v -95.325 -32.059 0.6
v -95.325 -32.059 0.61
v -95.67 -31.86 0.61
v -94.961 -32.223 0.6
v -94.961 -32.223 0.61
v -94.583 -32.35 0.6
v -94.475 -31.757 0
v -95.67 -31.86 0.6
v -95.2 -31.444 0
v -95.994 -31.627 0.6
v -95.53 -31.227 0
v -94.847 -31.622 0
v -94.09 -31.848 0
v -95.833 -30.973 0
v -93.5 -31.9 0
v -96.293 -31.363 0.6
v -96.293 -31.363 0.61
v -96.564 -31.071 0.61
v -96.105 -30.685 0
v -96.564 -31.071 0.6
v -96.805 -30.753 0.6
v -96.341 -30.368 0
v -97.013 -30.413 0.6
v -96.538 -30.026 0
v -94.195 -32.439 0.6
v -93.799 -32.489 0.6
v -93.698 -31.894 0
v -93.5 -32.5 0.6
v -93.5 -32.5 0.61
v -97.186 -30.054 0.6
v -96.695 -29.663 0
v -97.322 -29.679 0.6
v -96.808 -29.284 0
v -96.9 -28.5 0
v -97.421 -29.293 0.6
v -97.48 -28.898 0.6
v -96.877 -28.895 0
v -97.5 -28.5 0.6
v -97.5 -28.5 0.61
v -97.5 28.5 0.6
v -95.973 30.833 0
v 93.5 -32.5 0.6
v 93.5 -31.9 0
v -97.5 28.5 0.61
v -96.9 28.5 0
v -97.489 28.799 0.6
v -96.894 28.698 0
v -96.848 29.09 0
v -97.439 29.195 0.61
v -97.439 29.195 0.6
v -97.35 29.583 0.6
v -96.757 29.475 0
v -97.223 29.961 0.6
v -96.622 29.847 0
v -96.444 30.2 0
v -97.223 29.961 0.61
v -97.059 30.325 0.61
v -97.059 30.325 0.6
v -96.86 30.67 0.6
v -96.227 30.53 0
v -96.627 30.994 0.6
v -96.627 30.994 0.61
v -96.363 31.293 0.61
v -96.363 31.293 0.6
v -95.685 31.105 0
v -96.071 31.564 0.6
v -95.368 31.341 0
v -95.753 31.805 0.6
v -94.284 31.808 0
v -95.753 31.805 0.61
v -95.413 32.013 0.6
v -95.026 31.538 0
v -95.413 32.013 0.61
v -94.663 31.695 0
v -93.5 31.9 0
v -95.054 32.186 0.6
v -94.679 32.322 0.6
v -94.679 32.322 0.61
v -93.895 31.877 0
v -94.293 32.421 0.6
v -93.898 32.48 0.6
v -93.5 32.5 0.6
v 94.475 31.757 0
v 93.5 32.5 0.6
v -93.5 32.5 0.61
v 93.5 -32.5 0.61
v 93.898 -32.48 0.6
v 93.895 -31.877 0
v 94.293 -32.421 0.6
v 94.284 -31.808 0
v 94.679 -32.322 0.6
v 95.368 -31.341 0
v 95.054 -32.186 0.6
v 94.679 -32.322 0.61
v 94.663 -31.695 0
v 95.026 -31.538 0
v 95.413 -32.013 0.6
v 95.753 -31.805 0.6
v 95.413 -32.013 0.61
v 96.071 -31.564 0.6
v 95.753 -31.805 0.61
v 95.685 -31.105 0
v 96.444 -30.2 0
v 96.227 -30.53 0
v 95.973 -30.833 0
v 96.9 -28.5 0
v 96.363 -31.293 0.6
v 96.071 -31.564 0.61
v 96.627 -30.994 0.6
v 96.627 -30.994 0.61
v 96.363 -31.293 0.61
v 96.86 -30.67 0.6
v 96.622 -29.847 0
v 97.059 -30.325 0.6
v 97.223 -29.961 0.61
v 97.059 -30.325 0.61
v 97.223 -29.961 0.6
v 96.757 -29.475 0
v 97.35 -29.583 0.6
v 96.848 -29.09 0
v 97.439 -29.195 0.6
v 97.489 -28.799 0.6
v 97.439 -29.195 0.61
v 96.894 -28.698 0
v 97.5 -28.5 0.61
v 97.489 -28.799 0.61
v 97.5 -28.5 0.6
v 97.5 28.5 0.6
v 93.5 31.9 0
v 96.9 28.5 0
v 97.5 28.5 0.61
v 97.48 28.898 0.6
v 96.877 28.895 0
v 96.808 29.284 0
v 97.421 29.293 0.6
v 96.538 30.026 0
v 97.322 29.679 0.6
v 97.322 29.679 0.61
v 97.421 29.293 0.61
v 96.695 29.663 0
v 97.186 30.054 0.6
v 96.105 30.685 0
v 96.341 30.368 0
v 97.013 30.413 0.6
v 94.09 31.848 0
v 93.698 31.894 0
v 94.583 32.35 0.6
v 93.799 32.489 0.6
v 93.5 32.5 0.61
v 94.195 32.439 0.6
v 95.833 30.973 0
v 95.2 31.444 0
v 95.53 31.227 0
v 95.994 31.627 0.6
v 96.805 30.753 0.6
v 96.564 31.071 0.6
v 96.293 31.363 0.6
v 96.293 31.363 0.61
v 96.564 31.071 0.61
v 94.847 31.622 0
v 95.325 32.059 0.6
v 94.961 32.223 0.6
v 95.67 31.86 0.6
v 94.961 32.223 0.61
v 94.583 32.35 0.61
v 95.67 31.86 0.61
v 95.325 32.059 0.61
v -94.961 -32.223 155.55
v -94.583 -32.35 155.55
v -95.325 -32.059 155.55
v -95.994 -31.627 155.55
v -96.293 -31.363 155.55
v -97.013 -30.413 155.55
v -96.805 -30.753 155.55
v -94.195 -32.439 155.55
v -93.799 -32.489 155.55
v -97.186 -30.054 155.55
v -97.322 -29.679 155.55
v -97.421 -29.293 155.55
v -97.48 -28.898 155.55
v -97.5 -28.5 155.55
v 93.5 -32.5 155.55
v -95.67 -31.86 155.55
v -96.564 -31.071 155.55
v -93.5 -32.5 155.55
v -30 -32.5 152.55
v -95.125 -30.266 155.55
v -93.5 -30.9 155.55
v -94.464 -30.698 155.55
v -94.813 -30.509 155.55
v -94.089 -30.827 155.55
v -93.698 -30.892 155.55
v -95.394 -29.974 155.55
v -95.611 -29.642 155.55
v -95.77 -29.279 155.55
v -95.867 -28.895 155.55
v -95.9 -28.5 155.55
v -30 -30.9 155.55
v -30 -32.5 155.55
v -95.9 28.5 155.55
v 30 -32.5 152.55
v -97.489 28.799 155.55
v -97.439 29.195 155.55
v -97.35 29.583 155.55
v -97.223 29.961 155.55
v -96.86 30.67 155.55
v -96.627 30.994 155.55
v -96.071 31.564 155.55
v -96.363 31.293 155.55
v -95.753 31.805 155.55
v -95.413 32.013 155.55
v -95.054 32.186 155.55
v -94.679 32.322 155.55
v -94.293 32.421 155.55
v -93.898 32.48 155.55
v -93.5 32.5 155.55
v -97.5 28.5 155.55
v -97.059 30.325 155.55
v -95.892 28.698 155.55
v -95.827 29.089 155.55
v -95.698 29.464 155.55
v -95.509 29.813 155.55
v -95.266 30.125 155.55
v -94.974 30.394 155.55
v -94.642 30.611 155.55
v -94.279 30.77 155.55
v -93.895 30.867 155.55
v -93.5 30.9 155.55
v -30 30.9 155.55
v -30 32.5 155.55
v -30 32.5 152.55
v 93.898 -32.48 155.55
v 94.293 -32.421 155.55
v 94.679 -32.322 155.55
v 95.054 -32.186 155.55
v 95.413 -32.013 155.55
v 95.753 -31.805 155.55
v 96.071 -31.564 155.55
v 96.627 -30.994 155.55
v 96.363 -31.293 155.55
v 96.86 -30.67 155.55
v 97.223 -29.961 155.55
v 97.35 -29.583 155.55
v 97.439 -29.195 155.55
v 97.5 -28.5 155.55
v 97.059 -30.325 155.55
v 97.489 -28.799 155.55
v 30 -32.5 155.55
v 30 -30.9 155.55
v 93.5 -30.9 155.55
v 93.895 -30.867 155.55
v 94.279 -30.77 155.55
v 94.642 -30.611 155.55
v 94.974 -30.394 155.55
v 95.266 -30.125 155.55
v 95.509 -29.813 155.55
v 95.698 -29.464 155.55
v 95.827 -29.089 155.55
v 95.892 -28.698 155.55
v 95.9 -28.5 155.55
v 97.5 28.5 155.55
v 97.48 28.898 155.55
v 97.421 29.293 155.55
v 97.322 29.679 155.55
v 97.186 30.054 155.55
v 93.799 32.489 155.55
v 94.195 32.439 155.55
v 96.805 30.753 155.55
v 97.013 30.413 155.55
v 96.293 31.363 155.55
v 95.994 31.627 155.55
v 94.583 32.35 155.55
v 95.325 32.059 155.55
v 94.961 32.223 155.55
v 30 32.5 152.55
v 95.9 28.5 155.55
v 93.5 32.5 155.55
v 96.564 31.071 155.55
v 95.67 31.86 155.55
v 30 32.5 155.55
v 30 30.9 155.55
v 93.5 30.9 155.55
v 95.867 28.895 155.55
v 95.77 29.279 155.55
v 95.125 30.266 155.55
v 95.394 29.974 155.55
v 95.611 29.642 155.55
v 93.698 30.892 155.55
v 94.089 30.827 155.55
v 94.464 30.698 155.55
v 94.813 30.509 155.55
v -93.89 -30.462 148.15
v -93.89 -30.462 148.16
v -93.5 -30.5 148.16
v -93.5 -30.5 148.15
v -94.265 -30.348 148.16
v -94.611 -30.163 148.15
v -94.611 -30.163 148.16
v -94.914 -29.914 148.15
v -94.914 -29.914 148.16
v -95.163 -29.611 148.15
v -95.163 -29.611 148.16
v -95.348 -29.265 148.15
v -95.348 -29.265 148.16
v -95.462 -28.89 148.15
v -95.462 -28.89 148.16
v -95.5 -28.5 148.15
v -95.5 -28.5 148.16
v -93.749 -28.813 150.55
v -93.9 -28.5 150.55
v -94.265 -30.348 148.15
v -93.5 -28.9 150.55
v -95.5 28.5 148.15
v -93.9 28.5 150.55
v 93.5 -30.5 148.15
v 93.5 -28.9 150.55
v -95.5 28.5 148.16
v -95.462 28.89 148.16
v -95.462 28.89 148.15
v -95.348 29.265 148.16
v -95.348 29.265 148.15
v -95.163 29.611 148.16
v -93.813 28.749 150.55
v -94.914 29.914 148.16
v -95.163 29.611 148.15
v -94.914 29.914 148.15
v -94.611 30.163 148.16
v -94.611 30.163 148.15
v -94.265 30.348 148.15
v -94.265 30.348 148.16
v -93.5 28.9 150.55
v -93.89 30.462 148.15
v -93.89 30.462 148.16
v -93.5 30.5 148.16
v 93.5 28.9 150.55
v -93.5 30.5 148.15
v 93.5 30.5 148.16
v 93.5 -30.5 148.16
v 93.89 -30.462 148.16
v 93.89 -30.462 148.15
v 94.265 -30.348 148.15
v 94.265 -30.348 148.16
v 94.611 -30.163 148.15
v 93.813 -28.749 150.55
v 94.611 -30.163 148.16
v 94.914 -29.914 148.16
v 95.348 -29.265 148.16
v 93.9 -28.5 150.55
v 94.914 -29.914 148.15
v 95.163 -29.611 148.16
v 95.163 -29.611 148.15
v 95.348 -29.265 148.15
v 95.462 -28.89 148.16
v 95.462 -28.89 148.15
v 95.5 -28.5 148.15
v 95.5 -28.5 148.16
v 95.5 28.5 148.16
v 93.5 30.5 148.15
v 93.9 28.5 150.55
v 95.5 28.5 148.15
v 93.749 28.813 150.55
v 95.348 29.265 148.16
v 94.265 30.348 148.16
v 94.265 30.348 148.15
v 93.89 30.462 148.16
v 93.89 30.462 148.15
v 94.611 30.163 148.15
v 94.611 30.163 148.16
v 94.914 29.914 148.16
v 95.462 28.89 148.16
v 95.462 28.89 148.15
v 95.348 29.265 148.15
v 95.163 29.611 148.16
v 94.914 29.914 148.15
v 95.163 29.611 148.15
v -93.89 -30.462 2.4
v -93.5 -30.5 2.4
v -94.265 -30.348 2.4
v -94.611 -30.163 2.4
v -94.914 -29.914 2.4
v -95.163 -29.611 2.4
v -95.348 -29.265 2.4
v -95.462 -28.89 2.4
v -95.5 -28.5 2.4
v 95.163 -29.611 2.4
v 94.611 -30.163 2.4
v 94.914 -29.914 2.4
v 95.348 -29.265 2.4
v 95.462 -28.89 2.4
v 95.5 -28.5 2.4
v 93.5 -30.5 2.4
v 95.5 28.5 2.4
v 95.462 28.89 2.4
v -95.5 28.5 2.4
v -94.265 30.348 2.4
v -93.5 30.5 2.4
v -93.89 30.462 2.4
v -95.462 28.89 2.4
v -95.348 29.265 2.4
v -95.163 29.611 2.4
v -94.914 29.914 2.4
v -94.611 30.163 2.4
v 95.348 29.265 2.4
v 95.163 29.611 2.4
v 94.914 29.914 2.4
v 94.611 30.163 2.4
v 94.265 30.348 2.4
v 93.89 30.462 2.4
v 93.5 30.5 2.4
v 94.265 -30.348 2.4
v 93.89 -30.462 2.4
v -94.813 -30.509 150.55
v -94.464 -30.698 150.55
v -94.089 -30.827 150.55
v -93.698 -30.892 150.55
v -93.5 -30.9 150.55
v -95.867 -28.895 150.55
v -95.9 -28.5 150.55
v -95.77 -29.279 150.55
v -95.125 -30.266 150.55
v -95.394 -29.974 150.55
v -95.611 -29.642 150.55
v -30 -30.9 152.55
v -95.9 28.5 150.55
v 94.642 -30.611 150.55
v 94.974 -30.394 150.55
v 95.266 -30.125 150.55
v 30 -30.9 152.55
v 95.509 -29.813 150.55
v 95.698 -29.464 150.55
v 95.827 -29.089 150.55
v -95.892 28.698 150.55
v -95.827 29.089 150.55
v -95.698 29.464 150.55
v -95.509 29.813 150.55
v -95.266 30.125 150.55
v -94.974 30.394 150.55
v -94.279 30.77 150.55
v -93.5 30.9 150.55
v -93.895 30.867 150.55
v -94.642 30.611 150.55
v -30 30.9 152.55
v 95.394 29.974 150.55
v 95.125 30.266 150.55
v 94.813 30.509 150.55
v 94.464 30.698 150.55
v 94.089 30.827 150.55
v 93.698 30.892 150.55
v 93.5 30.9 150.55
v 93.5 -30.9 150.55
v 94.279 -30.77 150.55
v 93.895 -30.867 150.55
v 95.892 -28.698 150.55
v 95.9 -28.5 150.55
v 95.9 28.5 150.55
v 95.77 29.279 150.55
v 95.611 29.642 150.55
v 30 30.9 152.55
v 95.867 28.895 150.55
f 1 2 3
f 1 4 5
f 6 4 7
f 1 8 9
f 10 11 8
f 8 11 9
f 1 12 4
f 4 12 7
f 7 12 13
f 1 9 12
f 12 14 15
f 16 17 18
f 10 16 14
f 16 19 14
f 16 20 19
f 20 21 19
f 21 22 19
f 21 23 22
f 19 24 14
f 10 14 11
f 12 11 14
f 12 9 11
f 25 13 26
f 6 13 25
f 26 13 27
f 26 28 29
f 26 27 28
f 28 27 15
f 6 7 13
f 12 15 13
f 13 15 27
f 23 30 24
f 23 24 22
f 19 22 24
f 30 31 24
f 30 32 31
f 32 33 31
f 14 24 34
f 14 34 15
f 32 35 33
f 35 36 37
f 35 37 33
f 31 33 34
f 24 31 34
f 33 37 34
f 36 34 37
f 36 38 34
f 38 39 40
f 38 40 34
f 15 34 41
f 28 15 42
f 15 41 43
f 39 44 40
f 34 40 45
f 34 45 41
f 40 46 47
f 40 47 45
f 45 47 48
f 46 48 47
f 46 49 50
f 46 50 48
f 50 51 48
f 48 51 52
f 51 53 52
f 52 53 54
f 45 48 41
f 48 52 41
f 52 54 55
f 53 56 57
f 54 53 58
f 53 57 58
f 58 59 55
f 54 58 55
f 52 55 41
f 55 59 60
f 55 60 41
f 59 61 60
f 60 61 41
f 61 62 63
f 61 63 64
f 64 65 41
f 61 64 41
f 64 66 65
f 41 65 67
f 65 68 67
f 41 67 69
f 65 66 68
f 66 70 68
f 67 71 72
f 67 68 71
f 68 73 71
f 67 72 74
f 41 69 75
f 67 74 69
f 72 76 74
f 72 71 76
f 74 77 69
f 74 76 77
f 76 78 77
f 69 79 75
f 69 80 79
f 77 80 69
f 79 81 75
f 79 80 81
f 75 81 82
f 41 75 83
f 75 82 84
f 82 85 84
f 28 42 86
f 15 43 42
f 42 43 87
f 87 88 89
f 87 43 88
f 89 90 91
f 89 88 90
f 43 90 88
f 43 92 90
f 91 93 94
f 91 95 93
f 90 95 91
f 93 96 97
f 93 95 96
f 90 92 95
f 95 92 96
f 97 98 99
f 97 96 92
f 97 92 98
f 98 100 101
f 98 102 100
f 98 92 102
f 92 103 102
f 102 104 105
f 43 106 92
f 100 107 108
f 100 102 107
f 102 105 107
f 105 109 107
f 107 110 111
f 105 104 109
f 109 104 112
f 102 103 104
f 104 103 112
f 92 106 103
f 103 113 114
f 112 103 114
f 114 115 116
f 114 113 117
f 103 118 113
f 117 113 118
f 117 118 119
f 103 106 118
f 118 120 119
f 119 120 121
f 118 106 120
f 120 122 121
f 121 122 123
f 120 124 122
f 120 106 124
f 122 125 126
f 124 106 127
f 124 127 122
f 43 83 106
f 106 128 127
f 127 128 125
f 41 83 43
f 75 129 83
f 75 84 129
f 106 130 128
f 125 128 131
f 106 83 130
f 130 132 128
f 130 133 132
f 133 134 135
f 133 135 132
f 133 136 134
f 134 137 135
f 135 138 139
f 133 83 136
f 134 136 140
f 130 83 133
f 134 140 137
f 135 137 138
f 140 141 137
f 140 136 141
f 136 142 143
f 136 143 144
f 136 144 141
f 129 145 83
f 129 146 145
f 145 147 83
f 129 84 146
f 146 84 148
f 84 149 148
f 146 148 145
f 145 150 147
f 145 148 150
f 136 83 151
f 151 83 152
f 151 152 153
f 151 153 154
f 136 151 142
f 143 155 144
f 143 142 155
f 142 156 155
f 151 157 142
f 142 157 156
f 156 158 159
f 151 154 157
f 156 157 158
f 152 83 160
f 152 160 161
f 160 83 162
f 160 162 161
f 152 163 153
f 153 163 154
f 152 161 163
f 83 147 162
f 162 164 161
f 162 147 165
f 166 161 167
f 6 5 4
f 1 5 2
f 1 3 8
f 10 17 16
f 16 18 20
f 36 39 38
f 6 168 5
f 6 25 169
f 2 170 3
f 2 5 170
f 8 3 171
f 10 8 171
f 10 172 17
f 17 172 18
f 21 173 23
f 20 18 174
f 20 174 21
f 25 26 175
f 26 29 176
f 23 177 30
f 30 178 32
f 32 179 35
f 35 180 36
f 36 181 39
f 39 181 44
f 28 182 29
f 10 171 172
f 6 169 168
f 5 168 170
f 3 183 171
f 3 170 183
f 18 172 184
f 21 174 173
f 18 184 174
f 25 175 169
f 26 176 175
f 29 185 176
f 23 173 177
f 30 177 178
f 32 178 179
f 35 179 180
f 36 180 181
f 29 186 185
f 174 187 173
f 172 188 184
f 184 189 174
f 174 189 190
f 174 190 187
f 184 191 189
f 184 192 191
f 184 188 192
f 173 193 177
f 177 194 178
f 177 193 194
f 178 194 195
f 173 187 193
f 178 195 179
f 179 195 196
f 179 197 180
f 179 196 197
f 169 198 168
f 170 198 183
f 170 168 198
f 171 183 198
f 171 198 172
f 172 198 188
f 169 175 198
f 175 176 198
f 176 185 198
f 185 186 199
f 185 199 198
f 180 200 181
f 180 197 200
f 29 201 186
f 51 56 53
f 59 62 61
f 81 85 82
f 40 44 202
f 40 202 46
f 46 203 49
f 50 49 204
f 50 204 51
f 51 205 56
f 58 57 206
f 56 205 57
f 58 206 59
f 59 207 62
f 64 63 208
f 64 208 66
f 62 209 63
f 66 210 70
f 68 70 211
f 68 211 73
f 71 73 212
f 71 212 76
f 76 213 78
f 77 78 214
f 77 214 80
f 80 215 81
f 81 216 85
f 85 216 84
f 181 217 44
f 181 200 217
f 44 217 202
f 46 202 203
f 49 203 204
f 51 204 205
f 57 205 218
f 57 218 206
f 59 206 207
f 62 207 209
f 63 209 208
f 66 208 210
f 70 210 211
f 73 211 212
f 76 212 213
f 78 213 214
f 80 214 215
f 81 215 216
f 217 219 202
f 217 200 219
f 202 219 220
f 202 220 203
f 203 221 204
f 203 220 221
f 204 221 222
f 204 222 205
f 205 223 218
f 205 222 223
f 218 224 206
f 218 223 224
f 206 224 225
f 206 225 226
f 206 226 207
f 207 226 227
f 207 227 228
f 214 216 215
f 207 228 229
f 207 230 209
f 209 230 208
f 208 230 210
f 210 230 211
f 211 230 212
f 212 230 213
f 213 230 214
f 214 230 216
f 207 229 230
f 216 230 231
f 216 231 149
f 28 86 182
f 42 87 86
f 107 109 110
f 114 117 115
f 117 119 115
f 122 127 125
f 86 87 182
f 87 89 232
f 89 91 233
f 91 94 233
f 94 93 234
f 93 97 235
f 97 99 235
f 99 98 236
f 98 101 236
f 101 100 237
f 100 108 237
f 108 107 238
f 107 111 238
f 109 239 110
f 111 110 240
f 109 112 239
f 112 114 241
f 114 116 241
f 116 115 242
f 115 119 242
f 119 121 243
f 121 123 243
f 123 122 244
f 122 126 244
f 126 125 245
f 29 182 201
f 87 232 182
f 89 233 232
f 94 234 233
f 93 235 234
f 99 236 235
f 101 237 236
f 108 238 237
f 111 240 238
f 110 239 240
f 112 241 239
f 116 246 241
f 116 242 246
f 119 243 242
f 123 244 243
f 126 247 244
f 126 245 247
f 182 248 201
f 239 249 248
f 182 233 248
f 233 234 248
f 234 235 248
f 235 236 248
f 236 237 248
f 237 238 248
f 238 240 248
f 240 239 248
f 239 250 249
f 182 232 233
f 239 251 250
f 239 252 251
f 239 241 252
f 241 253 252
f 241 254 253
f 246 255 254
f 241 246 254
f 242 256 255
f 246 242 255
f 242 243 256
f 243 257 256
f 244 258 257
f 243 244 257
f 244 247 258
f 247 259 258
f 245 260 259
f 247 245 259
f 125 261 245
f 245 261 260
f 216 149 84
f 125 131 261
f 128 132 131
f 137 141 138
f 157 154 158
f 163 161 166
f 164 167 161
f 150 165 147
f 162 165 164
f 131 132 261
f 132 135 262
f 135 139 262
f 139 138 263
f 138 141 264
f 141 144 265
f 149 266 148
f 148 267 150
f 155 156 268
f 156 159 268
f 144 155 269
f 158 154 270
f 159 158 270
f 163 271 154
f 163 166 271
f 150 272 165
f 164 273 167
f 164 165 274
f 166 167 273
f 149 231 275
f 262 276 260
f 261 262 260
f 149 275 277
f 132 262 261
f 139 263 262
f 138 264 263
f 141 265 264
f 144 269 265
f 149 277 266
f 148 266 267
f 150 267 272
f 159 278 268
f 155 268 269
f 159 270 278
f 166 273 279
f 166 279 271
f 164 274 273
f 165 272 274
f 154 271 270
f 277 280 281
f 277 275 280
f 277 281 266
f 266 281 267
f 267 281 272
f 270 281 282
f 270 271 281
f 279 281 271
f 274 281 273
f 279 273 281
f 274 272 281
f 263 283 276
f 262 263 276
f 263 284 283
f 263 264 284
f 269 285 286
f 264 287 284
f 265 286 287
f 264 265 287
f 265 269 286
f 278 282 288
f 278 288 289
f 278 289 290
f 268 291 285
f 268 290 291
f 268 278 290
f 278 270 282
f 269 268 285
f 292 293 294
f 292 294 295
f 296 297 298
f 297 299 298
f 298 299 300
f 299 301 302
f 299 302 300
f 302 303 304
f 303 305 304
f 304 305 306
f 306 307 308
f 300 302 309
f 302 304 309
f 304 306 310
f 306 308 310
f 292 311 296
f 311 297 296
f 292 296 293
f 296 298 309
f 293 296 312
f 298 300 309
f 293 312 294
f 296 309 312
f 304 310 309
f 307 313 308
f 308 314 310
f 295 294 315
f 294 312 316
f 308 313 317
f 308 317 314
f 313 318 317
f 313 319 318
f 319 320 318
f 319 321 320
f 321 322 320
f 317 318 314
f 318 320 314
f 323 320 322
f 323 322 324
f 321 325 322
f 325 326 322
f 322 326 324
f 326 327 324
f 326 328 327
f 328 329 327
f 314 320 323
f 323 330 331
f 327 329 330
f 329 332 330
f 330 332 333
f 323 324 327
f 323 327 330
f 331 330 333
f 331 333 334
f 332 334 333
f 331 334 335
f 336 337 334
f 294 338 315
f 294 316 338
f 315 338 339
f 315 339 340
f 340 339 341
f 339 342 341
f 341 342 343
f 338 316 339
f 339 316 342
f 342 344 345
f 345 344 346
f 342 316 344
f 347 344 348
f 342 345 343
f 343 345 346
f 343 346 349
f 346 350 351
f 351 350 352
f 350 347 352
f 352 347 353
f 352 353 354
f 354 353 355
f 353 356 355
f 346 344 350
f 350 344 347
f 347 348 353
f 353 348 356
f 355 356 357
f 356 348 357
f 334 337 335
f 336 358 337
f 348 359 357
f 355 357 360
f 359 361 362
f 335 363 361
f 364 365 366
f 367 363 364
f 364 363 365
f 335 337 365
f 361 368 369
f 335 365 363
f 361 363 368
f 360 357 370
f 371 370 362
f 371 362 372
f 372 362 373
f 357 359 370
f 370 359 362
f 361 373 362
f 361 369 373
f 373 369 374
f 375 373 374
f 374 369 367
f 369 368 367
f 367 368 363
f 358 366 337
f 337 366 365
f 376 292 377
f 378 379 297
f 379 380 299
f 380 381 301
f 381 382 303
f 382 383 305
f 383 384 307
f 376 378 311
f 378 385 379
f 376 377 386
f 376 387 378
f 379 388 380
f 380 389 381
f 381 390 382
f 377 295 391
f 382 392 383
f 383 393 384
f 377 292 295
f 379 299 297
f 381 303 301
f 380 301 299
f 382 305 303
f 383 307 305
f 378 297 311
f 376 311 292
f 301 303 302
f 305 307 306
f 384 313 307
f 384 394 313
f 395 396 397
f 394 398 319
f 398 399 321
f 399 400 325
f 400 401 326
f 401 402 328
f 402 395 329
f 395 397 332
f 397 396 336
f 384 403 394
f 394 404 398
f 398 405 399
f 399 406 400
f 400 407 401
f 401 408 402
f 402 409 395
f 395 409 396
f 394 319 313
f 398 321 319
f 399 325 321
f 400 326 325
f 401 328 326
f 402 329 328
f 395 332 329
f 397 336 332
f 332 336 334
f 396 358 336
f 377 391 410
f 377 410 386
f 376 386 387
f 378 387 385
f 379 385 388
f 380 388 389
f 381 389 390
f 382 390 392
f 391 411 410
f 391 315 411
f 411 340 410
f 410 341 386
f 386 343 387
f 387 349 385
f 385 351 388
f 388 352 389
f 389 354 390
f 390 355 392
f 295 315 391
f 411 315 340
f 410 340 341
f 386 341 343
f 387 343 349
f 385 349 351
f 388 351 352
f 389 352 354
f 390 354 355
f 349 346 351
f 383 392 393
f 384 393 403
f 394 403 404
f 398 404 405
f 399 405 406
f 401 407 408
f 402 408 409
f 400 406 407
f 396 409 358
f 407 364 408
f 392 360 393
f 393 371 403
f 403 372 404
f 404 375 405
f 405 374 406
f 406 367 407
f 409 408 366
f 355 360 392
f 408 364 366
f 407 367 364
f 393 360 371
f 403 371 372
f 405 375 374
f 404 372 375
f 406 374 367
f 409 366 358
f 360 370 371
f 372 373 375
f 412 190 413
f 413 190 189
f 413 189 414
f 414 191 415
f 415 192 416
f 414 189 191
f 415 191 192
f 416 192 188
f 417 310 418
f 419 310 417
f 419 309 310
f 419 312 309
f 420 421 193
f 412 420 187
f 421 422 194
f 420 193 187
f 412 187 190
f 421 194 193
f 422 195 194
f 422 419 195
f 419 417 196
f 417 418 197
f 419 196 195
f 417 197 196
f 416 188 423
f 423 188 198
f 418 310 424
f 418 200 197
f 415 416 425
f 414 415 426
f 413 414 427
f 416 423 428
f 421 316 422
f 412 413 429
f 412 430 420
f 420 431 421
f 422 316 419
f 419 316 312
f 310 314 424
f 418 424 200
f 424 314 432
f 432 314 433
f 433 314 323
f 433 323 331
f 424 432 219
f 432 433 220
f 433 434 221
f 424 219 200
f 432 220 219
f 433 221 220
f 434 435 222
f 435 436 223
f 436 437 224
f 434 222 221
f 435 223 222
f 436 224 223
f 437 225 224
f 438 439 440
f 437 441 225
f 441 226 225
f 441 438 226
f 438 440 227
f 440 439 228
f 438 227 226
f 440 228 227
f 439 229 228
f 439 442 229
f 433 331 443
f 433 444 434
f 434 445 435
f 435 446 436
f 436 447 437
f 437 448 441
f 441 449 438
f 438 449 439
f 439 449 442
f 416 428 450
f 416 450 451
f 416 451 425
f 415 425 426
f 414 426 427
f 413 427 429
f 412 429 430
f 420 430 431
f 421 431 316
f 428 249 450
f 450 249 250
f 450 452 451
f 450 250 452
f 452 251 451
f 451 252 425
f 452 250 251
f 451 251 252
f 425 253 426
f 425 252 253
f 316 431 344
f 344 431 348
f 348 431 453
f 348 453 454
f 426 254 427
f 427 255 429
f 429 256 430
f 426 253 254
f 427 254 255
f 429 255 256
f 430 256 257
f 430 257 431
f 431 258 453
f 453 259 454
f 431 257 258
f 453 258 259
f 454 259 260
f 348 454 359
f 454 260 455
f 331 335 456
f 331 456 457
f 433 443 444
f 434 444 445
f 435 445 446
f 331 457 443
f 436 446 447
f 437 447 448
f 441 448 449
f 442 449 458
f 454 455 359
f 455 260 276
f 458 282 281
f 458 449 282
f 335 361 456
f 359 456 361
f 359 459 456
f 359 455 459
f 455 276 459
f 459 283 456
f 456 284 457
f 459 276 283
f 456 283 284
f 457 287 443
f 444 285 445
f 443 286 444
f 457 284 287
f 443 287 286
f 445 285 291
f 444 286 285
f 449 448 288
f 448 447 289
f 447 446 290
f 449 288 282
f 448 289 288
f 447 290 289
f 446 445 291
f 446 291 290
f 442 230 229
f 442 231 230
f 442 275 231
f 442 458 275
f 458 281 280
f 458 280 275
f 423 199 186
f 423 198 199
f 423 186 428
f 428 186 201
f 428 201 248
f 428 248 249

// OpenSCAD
// Variant a, box-only print layout (open face up, floor on the bed, support-free).
// The trailing assignments override the defaults from the include.
include <photo_box_003.scad>
variant = "a";
part = "box";
